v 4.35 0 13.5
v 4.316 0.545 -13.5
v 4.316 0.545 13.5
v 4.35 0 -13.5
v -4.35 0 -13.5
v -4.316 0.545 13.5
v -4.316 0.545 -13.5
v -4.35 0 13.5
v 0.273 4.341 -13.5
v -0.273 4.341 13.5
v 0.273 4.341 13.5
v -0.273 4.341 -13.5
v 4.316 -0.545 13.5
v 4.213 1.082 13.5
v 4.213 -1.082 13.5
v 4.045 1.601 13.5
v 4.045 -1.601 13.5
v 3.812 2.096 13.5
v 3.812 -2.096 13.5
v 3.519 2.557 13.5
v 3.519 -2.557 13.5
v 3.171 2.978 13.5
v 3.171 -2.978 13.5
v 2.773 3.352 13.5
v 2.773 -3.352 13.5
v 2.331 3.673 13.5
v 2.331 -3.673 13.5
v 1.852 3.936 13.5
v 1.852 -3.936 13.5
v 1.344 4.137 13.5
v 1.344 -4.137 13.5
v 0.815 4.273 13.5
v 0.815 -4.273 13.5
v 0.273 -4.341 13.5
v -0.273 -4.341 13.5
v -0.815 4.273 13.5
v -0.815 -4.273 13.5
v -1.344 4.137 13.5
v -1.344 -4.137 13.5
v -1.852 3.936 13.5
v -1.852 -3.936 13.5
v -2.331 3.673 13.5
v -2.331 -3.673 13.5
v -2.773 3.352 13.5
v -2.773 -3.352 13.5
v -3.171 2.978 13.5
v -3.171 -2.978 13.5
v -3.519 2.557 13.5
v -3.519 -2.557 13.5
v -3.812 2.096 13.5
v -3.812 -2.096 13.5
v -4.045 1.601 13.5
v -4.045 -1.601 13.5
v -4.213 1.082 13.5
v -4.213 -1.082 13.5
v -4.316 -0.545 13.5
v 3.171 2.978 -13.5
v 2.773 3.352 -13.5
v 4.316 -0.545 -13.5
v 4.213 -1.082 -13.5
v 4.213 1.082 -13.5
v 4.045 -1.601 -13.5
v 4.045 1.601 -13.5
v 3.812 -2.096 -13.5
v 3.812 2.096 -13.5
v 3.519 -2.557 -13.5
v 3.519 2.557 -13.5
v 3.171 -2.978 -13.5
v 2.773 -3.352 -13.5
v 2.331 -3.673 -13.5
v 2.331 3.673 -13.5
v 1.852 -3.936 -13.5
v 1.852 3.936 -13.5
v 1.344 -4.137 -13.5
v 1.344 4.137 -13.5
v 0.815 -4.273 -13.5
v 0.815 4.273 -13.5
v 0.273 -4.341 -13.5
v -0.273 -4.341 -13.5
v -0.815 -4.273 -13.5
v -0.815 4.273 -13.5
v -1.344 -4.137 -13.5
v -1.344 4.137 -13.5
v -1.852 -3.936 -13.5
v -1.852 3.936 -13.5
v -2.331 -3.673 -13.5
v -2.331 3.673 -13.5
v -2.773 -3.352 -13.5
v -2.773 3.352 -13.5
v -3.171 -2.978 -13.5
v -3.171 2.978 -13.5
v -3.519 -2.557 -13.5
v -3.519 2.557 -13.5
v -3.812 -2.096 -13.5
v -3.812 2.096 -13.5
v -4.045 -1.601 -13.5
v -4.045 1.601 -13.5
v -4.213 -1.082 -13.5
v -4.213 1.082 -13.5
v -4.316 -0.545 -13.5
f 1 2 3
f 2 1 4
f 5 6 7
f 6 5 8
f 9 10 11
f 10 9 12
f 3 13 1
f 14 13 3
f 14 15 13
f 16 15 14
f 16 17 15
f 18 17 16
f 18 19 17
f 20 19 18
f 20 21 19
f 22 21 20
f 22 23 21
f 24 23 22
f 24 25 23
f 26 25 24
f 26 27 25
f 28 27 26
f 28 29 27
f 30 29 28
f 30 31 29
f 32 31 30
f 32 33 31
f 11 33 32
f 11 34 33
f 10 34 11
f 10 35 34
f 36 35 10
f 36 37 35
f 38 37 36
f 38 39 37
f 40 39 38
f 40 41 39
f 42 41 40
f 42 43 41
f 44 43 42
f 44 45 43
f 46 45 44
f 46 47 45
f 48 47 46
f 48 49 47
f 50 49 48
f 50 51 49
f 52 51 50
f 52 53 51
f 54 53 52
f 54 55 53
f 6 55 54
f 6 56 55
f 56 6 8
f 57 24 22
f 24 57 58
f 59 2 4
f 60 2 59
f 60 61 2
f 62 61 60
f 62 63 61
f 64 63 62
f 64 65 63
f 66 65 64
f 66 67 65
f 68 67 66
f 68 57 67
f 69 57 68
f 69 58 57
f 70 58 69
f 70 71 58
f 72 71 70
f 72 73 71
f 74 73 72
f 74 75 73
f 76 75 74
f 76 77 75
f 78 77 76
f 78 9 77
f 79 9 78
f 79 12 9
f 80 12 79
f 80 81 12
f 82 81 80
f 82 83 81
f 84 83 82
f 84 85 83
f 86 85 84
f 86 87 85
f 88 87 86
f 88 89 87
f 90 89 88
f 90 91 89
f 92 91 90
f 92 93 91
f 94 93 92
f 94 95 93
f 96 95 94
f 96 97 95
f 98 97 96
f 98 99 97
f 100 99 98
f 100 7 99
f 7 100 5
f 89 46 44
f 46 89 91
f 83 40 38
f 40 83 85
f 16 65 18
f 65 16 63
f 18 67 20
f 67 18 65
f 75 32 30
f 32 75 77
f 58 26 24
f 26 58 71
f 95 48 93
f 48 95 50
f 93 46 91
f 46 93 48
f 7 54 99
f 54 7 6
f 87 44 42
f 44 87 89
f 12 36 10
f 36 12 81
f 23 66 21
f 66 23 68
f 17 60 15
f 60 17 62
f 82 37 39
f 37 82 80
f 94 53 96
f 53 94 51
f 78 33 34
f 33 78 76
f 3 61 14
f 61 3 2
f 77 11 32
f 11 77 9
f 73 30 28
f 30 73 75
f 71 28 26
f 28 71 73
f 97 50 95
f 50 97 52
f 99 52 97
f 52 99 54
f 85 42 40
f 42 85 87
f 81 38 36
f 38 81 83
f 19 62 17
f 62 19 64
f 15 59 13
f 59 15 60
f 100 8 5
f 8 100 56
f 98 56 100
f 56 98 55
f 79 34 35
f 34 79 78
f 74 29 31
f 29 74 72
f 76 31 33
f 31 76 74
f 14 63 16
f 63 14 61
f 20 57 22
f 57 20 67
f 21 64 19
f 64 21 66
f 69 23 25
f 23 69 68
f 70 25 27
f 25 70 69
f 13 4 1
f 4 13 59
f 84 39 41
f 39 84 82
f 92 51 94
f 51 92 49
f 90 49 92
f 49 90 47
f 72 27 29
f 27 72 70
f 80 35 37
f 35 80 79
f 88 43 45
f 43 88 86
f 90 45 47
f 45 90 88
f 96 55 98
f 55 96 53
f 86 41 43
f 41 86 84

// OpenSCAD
$fn = 50;


difference() {
	union() {
		translate(v = [0, 0, -13.5000000000]) {
			cylinder(h = 27, r = 4.3500000000);
		}
	}
	union() {
		translate(v = [0, 0, -100.0000000000]) {
			cylinder(h = 200, r = 0);
		}
	}
}
